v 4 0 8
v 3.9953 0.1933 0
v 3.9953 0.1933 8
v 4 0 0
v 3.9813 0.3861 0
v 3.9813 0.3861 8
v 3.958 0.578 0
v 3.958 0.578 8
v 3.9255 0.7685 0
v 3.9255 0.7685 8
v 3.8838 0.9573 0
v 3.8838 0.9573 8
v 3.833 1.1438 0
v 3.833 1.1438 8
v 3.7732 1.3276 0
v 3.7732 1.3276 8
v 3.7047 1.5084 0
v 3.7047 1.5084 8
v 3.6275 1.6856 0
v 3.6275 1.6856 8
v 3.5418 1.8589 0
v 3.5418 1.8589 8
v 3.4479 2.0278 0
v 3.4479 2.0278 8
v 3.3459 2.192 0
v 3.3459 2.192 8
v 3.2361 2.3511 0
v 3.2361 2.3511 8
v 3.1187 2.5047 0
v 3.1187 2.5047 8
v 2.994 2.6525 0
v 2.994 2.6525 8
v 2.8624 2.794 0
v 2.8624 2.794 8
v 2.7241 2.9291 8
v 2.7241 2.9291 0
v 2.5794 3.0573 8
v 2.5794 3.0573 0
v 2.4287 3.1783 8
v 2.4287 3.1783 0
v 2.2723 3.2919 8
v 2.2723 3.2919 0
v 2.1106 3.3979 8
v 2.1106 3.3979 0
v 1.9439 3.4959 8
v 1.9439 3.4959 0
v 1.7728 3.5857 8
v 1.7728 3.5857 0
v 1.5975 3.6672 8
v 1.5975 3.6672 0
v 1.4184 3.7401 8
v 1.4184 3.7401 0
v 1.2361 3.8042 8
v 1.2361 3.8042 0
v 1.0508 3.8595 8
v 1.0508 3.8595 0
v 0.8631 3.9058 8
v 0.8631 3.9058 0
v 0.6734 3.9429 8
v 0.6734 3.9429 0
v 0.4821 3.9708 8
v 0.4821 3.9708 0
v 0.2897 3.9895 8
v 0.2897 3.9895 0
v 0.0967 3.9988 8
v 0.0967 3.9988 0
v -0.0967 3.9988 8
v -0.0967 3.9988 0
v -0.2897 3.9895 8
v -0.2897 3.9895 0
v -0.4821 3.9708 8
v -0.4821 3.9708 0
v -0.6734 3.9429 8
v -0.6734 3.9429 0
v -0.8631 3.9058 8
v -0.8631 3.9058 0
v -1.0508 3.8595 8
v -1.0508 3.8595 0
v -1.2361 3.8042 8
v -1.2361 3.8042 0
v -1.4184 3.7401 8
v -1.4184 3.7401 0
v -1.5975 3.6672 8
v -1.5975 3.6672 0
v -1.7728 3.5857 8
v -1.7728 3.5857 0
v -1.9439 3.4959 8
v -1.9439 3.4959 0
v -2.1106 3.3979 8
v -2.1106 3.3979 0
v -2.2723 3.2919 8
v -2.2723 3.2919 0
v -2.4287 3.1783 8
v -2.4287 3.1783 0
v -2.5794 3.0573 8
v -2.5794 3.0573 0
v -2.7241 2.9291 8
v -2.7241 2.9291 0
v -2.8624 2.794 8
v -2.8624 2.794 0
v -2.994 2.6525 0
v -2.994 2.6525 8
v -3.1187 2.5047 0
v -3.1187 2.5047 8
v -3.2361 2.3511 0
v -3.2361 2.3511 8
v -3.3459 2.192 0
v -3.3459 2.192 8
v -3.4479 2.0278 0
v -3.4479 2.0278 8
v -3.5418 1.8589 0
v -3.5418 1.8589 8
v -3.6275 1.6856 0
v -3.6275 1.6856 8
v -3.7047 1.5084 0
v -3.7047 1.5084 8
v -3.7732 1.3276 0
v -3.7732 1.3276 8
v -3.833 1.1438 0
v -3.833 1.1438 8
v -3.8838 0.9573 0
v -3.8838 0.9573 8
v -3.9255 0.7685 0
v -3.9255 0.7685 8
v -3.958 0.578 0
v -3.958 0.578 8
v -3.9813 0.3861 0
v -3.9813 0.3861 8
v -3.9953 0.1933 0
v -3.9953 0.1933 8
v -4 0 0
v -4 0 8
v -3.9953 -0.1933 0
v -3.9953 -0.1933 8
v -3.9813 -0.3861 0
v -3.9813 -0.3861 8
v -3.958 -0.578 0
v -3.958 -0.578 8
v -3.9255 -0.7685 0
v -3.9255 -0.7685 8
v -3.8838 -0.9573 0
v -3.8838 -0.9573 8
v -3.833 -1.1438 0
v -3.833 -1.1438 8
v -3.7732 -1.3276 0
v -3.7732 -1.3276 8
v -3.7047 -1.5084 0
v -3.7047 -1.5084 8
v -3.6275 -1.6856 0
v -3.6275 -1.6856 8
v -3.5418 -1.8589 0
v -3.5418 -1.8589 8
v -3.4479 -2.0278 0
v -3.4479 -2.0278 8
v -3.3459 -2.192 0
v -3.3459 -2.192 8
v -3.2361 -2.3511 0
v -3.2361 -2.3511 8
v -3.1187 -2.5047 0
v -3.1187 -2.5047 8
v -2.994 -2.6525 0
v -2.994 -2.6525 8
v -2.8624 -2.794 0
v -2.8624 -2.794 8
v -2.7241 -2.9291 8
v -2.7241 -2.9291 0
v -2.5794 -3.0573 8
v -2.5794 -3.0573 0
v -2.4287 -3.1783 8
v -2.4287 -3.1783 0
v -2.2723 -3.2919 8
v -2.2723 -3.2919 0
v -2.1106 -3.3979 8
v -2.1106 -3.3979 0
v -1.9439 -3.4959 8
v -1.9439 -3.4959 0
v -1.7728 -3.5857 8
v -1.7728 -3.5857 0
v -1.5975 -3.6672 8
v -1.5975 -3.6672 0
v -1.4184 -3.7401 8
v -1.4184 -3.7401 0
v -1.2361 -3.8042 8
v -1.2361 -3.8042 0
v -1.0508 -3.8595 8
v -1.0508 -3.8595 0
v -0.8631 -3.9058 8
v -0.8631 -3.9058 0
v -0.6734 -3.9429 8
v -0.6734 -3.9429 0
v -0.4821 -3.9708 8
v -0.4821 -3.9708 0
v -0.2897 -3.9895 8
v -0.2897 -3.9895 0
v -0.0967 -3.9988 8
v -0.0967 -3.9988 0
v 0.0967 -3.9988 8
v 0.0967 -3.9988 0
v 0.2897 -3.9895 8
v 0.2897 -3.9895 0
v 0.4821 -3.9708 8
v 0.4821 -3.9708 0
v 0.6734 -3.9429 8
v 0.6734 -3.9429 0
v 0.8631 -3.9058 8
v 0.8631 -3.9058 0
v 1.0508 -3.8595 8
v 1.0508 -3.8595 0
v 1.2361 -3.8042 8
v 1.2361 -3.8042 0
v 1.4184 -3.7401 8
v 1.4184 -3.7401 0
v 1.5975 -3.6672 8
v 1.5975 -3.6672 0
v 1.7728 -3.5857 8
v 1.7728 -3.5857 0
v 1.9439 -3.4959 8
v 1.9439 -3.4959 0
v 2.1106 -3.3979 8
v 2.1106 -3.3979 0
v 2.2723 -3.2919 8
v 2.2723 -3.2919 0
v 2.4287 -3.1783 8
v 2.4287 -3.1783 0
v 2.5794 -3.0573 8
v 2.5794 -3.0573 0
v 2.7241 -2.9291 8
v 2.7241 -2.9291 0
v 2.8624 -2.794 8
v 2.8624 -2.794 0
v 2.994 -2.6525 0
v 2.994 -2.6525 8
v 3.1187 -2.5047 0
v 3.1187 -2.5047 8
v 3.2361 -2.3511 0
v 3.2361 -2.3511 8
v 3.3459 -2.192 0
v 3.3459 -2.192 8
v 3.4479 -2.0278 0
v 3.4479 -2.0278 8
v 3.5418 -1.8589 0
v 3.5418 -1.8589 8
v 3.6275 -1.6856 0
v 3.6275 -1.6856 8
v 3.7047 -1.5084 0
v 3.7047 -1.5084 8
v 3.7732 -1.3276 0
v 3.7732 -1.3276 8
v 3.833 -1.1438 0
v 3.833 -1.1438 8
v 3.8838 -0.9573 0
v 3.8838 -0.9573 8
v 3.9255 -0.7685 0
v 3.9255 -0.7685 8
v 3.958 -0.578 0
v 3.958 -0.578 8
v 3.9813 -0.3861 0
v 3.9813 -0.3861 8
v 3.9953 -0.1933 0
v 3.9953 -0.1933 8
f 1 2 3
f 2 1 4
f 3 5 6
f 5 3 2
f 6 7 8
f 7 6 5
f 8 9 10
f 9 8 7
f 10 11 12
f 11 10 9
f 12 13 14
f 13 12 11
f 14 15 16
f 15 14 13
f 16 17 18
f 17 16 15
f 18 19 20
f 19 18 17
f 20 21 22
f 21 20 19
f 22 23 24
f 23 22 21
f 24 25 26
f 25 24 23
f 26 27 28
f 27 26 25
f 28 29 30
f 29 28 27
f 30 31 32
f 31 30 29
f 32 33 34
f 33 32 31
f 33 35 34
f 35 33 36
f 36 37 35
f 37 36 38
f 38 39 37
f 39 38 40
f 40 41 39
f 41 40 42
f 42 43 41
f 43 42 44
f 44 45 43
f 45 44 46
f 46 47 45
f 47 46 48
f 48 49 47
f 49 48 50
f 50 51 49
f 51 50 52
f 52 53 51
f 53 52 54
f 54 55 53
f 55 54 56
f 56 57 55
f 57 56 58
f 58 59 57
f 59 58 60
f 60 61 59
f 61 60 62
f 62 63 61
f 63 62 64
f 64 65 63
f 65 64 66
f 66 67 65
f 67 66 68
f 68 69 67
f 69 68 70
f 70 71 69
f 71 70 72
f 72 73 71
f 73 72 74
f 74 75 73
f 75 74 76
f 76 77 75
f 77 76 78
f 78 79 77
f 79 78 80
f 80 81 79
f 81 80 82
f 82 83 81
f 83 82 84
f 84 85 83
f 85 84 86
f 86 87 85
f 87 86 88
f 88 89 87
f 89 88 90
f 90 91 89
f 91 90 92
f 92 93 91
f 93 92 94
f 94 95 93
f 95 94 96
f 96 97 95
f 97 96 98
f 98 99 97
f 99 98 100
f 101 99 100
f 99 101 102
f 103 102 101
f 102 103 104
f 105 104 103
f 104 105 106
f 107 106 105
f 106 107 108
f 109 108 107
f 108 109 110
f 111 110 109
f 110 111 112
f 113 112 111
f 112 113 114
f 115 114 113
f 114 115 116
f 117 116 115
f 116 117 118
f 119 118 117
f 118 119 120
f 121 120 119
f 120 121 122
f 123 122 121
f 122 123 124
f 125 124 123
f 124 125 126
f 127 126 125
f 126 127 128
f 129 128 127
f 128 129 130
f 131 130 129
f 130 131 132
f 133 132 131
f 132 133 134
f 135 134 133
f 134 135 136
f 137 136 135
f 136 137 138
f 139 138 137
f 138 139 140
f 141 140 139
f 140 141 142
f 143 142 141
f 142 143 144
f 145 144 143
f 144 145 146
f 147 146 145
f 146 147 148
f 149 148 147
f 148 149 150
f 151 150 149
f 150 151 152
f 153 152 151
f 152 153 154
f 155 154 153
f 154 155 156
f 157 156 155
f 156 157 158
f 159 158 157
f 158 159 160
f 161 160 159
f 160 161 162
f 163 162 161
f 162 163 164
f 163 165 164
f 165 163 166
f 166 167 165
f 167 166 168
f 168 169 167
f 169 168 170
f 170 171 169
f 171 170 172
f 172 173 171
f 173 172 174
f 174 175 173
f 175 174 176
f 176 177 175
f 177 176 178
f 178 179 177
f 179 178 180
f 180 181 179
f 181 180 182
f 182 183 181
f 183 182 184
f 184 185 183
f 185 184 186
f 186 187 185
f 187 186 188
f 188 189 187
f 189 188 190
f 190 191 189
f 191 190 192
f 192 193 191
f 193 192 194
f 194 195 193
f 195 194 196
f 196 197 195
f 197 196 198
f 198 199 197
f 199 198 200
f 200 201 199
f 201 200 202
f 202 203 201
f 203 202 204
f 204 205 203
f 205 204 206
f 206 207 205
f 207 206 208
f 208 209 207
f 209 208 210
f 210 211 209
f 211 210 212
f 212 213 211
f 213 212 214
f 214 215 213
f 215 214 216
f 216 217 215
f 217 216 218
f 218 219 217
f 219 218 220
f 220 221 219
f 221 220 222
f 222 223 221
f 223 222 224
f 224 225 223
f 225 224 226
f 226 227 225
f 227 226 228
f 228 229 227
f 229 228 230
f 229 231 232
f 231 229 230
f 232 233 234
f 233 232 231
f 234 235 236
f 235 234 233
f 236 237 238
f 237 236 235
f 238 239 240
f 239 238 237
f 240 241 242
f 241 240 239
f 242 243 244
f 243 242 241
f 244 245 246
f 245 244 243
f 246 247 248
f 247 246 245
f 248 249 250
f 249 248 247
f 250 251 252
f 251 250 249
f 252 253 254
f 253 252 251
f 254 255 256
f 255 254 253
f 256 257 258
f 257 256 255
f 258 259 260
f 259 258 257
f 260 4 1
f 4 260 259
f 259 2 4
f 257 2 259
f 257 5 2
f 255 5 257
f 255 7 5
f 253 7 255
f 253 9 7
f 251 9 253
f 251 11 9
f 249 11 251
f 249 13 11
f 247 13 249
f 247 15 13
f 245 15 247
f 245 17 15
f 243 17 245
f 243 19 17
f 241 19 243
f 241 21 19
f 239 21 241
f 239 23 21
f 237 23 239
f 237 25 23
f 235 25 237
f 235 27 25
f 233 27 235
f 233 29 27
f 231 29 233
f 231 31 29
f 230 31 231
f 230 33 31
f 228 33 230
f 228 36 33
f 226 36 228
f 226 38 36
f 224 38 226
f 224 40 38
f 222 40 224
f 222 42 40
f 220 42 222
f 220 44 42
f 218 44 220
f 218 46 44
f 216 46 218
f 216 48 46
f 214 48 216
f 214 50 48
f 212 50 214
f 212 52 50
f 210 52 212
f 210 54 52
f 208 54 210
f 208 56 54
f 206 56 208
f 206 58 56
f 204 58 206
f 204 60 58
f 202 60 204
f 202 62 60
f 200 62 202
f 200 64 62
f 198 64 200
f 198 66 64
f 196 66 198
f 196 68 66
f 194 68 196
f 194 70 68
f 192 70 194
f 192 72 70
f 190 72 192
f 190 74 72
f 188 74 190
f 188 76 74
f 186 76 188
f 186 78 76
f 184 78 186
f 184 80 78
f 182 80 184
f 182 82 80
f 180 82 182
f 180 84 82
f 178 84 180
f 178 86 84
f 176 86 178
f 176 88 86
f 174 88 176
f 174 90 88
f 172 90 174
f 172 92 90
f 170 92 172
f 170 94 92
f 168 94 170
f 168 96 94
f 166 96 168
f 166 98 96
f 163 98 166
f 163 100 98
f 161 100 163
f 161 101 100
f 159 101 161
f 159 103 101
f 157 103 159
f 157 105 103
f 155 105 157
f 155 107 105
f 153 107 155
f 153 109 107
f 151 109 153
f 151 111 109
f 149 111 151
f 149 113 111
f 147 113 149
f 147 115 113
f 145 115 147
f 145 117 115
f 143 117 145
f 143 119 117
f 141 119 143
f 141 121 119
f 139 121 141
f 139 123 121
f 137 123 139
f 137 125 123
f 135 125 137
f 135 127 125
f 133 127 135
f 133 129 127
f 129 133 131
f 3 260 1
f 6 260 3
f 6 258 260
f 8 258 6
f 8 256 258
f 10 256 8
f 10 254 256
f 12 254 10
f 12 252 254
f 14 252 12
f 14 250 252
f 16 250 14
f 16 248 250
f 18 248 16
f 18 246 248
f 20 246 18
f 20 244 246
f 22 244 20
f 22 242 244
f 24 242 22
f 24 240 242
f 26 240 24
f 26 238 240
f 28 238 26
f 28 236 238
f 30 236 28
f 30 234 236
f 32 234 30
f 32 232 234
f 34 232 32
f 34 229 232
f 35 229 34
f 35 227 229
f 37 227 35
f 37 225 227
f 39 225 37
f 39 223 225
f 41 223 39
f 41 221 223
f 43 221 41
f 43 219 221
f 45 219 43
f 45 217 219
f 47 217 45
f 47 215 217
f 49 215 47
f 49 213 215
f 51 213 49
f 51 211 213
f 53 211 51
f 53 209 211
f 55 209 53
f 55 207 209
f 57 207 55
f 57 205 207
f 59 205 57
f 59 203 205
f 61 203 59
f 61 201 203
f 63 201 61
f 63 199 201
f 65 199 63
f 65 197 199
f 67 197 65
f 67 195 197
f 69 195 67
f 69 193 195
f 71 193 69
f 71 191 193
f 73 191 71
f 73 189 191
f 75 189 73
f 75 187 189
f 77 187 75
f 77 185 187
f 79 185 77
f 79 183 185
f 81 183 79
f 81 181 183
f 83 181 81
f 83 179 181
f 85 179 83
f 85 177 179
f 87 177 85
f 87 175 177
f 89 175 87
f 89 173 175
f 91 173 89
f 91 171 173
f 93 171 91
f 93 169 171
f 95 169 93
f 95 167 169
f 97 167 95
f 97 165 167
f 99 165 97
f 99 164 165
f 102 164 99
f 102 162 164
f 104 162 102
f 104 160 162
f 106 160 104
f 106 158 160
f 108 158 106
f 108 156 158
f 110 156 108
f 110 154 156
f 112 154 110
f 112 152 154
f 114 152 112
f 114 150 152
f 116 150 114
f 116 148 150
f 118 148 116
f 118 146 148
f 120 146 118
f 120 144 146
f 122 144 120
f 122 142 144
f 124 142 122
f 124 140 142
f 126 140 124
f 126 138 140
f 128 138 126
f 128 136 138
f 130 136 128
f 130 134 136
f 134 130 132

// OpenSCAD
$fn=130;

D_sock=8;    //Sockeldurchmesser

H_sock=8;   //Sockelhöhe


//Sockel
H=H_sock-6;
color("SlateGray")
//color("WhiteSmoke")

cylinder (h=H_sock, d=D_sock);

  
